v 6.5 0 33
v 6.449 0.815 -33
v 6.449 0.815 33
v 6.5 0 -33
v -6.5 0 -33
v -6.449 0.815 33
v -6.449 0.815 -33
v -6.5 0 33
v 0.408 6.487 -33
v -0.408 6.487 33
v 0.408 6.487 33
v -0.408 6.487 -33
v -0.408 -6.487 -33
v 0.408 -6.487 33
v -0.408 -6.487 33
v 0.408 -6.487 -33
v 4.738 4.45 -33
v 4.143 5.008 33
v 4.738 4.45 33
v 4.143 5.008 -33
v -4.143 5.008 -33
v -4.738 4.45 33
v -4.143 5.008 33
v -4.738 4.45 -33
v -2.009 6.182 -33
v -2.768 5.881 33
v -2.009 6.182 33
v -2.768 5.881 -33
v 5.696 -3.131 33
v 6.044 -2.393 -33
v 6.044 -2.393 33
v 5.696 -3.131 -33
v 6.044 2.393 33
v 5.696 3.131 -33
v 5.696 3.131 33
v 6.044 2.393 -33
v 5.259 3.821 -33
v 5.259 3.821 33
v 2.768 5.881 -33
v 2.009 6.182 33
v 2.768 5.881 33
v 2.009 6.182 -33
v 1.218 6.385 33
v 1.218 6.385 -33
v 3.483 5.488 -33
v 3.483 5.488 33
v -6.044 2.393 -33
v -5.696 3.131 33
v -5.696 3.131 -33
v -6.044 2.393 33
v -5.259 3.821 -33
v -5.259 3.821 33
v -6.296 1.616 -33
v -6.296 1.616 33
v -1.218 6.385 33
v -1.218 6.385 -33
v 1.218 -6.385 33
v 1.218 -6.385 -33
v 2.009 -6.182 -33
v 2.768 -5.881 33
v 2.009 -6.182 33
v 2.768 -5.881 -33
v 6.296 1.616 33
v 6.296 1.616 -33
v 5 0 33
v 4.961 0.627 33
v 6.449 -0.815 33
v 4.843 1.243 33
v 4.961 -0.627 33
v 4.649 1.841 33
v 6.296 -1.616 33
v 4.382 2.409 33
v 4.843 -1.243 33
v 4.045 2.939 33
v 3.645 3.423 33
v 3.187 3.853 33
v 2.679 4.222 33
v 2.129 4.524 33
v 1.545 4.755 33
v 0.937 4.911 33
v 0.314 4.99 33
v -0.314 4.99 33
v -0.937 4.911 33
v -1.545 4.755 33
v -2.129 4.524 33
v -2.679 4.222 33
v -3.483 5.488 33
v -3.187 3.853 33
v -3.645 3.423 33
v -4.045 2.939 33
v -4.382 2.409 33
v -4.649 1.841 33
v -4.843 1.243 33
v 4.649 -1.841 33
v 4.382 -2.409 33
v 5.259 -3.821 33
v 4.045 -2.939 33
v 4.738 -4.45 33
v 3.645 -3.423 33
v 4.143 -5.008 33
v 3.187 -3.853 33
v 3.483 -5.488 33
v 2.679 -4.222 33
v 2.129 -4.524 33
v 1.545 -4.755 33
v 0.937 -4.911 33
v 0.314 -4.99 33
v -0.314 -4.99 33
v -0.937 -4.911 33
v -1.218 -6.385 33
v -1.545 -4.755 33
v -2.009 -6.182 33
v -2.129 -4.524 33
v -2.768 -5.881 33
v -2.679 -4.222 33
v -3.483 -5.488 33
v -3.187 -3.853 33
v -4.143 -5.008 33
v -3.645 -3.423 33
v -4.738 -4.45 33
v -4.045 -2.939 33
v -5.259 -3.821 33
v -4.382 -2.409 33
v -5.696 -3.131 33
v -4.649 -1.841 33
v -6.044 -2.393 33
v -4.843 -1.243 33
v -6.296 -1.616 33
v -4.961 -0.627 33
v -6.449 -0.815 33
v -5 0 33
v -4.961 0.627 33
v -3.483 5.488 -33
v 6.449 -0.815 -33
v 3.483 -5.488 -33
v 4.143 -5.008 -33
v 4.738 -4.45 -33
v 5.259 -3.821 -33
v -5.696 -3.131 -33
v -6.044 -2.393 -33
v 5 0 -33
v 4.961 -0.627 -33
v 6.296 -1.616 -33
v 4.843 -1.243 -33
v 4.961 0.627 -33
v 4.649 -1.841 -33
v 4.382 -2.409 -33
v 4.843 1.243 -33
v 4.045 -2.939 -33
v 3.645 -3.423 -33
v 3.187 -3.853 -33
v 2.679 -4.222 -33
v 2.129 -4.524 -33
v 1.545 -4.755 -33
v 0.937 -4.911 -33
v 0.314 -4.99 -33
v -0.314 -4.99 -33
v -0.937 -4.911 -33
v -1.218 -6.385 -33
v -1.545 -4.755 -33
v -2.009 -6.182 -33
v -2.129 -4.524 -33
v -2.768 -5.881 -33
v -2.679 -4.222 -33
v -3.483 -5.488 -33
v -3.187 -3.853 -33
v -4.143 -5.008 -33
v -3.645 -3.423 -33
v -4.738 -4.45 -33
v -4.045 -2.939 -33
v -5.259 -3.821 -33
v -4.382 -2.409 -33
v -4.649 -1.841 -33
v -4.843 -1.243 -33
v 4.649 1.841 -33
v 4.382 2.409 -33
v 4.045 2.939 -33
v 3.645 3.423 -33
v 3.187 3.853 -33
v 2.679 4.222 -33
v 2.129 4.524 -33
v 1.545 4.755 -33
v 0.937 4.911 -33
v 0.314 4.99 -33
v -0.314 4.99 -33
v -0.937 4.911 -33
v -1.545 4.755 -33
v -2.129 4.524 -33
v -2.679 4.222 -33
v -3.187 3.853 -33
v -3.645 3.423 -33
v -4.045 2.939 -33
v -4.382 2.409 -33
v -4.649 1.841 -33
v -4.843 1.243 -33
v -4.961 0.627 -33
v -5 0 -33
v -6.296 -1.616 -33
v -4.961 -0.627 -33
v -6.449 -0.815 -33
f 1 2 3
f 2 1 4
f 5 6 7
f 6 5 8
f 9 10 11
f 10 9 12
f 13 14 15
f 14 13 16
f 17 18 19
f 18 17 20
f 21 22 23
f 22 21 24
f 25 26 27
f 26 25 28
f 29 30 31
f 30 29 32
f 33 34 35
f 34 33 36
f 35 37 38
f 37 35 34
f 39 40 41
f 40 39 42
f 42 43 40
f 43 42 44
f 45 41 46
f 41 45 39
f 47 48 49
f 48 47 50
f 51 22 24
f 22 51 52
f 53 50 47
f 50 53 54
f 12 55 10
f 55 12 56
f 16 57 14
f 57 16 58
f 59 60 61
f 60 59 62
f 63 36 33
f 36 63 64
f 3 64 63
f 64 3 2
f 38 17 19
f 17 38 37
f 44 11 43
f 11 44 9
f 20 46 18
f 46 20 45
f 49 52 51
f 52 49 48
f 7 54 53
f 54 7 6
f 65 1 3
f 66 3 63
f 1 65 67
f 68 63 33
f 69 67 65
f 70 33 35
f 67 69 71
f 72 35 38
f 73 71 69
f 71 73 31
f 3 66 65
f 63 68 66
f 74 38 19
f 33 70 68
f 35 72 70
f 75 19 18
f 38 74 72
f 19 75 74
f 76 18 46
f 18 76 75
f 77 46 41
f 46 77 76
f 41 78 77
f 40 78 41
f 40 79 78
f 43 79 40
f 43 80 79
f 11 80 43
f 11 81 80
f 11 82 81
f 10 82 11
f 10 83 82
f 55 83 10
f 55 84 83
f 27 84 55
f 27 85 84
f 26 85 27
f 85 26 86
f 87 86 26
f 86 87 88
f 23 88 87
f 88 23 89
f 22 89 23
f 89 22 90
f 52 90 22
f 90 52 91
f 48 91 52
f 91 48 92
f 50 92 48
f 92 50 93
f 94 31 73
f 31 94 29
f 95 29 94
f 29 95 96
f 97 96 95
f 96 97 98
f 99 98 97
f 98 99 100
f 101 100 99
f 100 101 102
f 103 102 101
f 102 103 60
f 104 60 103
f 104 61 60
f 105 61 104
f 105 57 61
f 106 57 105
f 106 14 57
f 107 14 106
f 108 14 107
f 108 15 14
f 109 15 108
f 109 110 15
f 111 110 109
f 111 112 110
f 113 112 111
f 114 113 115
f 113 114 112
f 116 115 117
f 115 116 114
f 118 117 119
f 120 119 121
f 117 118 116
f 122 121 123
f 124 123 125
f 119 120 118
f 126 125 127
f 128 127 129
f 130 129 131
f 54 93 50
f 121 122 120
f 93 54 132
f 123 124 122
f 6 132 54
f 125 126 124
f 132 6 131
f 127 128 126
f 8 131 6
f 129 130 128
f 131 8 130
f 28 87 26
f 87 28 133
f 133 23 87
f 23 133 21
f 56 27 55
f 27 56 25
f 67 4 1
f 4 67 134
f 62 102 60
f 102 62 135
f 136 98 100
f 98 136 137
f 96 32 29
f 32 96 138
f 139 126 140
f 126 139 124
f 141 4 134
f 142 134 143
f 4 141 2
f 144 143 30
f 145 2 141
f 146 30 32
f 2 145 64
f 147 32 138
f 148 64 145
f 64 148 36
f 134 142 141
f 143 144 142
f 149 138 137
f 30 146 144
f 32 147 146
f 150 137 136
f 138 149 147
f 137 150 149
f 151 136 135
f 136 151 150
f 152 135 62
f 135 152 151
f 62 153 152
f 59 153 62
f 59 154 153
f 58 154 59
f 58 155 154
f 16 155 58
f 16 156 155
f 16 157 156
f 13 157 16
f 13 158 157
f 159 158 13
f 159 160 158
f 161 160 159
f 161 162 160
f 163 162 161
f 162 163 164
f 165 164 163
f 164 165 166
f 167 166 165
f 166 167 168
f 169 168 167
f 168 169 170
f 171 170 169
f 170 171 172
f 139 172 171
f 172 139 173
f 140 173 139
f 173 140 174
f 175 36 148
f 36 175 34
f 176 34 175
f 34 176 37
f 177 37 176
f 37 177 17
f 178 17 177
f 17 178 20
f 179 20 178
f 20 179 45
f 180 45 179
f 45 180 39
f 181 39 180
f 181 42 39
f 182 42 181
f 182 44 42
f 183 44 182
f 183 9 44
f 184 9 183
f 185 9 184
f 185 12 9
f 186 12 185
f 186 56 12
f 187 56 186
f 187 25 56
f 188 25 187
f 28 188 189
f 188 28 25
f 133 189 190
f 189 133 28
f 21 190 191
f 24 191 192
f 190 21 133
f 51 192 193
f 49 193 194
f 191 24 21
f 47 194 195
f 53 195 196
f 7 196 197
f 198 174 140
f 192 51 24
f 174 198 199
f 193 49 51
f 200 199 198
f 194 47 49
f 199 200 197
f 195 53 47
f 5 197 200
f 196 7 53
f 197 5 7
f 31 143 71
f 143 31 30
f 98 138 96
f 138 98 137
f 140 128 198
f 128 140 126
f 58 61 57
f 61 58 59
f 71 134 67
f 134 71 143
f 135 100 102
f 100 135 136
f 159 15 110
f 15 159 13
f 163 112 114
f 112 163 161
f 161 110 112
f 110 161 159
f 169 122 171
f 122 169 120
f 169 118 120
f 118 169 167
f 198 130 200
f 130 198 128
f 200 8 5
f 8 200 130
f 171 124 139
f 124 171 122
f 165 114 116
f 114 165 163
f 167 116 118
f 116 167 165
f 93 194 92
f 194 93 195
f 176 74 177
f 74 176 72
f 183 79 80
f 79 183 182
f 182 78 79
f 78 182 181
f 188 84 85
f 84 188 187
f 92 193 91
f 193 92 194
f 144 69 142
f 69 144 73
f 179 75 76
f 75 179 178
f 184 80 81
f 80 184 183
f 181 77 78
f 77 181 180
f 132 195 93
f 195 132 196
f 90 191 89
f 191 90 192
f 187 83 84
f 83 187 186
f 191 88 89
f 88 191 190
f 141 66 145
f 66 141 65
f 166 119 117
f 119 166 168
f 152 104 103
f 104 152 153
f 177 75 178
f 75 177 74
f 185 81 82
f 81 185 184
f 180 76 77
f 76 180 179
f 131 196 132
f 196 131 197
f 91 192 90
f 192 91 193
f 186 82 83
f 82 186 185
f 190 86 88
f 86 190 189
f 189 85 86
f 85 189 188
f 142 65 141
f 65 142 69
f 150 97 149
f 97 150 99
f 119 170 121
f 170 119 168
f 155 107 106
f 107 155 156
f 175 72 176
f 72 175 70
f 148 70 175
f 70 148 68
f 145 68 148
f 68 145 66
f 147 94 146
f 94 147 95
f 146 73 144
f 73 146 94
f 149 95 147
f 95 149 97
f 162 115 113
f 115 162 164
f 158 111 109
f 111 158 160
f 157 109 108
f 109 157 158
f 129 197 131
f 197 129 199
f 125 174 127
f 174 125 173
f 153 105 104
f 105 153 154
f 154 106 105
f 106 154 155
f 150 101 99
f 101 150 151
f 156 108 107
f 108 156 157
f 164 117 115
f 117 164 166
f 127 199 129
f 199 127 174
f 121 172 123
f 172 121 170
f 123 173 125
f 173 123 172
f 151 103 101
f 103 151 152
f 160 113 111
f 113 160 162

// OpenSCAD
$fn = 50;


difference() {
	union() {
		translate(v = [0, 0, -33.0000000000]) {
			cylinder(h = 66, r = 6.5000000000);
		}
	}
	union() {
		translate(v = [0, 0, -100.0000000000]) {
			cylinder(h = 200, r = 5);
		}
	}
}
